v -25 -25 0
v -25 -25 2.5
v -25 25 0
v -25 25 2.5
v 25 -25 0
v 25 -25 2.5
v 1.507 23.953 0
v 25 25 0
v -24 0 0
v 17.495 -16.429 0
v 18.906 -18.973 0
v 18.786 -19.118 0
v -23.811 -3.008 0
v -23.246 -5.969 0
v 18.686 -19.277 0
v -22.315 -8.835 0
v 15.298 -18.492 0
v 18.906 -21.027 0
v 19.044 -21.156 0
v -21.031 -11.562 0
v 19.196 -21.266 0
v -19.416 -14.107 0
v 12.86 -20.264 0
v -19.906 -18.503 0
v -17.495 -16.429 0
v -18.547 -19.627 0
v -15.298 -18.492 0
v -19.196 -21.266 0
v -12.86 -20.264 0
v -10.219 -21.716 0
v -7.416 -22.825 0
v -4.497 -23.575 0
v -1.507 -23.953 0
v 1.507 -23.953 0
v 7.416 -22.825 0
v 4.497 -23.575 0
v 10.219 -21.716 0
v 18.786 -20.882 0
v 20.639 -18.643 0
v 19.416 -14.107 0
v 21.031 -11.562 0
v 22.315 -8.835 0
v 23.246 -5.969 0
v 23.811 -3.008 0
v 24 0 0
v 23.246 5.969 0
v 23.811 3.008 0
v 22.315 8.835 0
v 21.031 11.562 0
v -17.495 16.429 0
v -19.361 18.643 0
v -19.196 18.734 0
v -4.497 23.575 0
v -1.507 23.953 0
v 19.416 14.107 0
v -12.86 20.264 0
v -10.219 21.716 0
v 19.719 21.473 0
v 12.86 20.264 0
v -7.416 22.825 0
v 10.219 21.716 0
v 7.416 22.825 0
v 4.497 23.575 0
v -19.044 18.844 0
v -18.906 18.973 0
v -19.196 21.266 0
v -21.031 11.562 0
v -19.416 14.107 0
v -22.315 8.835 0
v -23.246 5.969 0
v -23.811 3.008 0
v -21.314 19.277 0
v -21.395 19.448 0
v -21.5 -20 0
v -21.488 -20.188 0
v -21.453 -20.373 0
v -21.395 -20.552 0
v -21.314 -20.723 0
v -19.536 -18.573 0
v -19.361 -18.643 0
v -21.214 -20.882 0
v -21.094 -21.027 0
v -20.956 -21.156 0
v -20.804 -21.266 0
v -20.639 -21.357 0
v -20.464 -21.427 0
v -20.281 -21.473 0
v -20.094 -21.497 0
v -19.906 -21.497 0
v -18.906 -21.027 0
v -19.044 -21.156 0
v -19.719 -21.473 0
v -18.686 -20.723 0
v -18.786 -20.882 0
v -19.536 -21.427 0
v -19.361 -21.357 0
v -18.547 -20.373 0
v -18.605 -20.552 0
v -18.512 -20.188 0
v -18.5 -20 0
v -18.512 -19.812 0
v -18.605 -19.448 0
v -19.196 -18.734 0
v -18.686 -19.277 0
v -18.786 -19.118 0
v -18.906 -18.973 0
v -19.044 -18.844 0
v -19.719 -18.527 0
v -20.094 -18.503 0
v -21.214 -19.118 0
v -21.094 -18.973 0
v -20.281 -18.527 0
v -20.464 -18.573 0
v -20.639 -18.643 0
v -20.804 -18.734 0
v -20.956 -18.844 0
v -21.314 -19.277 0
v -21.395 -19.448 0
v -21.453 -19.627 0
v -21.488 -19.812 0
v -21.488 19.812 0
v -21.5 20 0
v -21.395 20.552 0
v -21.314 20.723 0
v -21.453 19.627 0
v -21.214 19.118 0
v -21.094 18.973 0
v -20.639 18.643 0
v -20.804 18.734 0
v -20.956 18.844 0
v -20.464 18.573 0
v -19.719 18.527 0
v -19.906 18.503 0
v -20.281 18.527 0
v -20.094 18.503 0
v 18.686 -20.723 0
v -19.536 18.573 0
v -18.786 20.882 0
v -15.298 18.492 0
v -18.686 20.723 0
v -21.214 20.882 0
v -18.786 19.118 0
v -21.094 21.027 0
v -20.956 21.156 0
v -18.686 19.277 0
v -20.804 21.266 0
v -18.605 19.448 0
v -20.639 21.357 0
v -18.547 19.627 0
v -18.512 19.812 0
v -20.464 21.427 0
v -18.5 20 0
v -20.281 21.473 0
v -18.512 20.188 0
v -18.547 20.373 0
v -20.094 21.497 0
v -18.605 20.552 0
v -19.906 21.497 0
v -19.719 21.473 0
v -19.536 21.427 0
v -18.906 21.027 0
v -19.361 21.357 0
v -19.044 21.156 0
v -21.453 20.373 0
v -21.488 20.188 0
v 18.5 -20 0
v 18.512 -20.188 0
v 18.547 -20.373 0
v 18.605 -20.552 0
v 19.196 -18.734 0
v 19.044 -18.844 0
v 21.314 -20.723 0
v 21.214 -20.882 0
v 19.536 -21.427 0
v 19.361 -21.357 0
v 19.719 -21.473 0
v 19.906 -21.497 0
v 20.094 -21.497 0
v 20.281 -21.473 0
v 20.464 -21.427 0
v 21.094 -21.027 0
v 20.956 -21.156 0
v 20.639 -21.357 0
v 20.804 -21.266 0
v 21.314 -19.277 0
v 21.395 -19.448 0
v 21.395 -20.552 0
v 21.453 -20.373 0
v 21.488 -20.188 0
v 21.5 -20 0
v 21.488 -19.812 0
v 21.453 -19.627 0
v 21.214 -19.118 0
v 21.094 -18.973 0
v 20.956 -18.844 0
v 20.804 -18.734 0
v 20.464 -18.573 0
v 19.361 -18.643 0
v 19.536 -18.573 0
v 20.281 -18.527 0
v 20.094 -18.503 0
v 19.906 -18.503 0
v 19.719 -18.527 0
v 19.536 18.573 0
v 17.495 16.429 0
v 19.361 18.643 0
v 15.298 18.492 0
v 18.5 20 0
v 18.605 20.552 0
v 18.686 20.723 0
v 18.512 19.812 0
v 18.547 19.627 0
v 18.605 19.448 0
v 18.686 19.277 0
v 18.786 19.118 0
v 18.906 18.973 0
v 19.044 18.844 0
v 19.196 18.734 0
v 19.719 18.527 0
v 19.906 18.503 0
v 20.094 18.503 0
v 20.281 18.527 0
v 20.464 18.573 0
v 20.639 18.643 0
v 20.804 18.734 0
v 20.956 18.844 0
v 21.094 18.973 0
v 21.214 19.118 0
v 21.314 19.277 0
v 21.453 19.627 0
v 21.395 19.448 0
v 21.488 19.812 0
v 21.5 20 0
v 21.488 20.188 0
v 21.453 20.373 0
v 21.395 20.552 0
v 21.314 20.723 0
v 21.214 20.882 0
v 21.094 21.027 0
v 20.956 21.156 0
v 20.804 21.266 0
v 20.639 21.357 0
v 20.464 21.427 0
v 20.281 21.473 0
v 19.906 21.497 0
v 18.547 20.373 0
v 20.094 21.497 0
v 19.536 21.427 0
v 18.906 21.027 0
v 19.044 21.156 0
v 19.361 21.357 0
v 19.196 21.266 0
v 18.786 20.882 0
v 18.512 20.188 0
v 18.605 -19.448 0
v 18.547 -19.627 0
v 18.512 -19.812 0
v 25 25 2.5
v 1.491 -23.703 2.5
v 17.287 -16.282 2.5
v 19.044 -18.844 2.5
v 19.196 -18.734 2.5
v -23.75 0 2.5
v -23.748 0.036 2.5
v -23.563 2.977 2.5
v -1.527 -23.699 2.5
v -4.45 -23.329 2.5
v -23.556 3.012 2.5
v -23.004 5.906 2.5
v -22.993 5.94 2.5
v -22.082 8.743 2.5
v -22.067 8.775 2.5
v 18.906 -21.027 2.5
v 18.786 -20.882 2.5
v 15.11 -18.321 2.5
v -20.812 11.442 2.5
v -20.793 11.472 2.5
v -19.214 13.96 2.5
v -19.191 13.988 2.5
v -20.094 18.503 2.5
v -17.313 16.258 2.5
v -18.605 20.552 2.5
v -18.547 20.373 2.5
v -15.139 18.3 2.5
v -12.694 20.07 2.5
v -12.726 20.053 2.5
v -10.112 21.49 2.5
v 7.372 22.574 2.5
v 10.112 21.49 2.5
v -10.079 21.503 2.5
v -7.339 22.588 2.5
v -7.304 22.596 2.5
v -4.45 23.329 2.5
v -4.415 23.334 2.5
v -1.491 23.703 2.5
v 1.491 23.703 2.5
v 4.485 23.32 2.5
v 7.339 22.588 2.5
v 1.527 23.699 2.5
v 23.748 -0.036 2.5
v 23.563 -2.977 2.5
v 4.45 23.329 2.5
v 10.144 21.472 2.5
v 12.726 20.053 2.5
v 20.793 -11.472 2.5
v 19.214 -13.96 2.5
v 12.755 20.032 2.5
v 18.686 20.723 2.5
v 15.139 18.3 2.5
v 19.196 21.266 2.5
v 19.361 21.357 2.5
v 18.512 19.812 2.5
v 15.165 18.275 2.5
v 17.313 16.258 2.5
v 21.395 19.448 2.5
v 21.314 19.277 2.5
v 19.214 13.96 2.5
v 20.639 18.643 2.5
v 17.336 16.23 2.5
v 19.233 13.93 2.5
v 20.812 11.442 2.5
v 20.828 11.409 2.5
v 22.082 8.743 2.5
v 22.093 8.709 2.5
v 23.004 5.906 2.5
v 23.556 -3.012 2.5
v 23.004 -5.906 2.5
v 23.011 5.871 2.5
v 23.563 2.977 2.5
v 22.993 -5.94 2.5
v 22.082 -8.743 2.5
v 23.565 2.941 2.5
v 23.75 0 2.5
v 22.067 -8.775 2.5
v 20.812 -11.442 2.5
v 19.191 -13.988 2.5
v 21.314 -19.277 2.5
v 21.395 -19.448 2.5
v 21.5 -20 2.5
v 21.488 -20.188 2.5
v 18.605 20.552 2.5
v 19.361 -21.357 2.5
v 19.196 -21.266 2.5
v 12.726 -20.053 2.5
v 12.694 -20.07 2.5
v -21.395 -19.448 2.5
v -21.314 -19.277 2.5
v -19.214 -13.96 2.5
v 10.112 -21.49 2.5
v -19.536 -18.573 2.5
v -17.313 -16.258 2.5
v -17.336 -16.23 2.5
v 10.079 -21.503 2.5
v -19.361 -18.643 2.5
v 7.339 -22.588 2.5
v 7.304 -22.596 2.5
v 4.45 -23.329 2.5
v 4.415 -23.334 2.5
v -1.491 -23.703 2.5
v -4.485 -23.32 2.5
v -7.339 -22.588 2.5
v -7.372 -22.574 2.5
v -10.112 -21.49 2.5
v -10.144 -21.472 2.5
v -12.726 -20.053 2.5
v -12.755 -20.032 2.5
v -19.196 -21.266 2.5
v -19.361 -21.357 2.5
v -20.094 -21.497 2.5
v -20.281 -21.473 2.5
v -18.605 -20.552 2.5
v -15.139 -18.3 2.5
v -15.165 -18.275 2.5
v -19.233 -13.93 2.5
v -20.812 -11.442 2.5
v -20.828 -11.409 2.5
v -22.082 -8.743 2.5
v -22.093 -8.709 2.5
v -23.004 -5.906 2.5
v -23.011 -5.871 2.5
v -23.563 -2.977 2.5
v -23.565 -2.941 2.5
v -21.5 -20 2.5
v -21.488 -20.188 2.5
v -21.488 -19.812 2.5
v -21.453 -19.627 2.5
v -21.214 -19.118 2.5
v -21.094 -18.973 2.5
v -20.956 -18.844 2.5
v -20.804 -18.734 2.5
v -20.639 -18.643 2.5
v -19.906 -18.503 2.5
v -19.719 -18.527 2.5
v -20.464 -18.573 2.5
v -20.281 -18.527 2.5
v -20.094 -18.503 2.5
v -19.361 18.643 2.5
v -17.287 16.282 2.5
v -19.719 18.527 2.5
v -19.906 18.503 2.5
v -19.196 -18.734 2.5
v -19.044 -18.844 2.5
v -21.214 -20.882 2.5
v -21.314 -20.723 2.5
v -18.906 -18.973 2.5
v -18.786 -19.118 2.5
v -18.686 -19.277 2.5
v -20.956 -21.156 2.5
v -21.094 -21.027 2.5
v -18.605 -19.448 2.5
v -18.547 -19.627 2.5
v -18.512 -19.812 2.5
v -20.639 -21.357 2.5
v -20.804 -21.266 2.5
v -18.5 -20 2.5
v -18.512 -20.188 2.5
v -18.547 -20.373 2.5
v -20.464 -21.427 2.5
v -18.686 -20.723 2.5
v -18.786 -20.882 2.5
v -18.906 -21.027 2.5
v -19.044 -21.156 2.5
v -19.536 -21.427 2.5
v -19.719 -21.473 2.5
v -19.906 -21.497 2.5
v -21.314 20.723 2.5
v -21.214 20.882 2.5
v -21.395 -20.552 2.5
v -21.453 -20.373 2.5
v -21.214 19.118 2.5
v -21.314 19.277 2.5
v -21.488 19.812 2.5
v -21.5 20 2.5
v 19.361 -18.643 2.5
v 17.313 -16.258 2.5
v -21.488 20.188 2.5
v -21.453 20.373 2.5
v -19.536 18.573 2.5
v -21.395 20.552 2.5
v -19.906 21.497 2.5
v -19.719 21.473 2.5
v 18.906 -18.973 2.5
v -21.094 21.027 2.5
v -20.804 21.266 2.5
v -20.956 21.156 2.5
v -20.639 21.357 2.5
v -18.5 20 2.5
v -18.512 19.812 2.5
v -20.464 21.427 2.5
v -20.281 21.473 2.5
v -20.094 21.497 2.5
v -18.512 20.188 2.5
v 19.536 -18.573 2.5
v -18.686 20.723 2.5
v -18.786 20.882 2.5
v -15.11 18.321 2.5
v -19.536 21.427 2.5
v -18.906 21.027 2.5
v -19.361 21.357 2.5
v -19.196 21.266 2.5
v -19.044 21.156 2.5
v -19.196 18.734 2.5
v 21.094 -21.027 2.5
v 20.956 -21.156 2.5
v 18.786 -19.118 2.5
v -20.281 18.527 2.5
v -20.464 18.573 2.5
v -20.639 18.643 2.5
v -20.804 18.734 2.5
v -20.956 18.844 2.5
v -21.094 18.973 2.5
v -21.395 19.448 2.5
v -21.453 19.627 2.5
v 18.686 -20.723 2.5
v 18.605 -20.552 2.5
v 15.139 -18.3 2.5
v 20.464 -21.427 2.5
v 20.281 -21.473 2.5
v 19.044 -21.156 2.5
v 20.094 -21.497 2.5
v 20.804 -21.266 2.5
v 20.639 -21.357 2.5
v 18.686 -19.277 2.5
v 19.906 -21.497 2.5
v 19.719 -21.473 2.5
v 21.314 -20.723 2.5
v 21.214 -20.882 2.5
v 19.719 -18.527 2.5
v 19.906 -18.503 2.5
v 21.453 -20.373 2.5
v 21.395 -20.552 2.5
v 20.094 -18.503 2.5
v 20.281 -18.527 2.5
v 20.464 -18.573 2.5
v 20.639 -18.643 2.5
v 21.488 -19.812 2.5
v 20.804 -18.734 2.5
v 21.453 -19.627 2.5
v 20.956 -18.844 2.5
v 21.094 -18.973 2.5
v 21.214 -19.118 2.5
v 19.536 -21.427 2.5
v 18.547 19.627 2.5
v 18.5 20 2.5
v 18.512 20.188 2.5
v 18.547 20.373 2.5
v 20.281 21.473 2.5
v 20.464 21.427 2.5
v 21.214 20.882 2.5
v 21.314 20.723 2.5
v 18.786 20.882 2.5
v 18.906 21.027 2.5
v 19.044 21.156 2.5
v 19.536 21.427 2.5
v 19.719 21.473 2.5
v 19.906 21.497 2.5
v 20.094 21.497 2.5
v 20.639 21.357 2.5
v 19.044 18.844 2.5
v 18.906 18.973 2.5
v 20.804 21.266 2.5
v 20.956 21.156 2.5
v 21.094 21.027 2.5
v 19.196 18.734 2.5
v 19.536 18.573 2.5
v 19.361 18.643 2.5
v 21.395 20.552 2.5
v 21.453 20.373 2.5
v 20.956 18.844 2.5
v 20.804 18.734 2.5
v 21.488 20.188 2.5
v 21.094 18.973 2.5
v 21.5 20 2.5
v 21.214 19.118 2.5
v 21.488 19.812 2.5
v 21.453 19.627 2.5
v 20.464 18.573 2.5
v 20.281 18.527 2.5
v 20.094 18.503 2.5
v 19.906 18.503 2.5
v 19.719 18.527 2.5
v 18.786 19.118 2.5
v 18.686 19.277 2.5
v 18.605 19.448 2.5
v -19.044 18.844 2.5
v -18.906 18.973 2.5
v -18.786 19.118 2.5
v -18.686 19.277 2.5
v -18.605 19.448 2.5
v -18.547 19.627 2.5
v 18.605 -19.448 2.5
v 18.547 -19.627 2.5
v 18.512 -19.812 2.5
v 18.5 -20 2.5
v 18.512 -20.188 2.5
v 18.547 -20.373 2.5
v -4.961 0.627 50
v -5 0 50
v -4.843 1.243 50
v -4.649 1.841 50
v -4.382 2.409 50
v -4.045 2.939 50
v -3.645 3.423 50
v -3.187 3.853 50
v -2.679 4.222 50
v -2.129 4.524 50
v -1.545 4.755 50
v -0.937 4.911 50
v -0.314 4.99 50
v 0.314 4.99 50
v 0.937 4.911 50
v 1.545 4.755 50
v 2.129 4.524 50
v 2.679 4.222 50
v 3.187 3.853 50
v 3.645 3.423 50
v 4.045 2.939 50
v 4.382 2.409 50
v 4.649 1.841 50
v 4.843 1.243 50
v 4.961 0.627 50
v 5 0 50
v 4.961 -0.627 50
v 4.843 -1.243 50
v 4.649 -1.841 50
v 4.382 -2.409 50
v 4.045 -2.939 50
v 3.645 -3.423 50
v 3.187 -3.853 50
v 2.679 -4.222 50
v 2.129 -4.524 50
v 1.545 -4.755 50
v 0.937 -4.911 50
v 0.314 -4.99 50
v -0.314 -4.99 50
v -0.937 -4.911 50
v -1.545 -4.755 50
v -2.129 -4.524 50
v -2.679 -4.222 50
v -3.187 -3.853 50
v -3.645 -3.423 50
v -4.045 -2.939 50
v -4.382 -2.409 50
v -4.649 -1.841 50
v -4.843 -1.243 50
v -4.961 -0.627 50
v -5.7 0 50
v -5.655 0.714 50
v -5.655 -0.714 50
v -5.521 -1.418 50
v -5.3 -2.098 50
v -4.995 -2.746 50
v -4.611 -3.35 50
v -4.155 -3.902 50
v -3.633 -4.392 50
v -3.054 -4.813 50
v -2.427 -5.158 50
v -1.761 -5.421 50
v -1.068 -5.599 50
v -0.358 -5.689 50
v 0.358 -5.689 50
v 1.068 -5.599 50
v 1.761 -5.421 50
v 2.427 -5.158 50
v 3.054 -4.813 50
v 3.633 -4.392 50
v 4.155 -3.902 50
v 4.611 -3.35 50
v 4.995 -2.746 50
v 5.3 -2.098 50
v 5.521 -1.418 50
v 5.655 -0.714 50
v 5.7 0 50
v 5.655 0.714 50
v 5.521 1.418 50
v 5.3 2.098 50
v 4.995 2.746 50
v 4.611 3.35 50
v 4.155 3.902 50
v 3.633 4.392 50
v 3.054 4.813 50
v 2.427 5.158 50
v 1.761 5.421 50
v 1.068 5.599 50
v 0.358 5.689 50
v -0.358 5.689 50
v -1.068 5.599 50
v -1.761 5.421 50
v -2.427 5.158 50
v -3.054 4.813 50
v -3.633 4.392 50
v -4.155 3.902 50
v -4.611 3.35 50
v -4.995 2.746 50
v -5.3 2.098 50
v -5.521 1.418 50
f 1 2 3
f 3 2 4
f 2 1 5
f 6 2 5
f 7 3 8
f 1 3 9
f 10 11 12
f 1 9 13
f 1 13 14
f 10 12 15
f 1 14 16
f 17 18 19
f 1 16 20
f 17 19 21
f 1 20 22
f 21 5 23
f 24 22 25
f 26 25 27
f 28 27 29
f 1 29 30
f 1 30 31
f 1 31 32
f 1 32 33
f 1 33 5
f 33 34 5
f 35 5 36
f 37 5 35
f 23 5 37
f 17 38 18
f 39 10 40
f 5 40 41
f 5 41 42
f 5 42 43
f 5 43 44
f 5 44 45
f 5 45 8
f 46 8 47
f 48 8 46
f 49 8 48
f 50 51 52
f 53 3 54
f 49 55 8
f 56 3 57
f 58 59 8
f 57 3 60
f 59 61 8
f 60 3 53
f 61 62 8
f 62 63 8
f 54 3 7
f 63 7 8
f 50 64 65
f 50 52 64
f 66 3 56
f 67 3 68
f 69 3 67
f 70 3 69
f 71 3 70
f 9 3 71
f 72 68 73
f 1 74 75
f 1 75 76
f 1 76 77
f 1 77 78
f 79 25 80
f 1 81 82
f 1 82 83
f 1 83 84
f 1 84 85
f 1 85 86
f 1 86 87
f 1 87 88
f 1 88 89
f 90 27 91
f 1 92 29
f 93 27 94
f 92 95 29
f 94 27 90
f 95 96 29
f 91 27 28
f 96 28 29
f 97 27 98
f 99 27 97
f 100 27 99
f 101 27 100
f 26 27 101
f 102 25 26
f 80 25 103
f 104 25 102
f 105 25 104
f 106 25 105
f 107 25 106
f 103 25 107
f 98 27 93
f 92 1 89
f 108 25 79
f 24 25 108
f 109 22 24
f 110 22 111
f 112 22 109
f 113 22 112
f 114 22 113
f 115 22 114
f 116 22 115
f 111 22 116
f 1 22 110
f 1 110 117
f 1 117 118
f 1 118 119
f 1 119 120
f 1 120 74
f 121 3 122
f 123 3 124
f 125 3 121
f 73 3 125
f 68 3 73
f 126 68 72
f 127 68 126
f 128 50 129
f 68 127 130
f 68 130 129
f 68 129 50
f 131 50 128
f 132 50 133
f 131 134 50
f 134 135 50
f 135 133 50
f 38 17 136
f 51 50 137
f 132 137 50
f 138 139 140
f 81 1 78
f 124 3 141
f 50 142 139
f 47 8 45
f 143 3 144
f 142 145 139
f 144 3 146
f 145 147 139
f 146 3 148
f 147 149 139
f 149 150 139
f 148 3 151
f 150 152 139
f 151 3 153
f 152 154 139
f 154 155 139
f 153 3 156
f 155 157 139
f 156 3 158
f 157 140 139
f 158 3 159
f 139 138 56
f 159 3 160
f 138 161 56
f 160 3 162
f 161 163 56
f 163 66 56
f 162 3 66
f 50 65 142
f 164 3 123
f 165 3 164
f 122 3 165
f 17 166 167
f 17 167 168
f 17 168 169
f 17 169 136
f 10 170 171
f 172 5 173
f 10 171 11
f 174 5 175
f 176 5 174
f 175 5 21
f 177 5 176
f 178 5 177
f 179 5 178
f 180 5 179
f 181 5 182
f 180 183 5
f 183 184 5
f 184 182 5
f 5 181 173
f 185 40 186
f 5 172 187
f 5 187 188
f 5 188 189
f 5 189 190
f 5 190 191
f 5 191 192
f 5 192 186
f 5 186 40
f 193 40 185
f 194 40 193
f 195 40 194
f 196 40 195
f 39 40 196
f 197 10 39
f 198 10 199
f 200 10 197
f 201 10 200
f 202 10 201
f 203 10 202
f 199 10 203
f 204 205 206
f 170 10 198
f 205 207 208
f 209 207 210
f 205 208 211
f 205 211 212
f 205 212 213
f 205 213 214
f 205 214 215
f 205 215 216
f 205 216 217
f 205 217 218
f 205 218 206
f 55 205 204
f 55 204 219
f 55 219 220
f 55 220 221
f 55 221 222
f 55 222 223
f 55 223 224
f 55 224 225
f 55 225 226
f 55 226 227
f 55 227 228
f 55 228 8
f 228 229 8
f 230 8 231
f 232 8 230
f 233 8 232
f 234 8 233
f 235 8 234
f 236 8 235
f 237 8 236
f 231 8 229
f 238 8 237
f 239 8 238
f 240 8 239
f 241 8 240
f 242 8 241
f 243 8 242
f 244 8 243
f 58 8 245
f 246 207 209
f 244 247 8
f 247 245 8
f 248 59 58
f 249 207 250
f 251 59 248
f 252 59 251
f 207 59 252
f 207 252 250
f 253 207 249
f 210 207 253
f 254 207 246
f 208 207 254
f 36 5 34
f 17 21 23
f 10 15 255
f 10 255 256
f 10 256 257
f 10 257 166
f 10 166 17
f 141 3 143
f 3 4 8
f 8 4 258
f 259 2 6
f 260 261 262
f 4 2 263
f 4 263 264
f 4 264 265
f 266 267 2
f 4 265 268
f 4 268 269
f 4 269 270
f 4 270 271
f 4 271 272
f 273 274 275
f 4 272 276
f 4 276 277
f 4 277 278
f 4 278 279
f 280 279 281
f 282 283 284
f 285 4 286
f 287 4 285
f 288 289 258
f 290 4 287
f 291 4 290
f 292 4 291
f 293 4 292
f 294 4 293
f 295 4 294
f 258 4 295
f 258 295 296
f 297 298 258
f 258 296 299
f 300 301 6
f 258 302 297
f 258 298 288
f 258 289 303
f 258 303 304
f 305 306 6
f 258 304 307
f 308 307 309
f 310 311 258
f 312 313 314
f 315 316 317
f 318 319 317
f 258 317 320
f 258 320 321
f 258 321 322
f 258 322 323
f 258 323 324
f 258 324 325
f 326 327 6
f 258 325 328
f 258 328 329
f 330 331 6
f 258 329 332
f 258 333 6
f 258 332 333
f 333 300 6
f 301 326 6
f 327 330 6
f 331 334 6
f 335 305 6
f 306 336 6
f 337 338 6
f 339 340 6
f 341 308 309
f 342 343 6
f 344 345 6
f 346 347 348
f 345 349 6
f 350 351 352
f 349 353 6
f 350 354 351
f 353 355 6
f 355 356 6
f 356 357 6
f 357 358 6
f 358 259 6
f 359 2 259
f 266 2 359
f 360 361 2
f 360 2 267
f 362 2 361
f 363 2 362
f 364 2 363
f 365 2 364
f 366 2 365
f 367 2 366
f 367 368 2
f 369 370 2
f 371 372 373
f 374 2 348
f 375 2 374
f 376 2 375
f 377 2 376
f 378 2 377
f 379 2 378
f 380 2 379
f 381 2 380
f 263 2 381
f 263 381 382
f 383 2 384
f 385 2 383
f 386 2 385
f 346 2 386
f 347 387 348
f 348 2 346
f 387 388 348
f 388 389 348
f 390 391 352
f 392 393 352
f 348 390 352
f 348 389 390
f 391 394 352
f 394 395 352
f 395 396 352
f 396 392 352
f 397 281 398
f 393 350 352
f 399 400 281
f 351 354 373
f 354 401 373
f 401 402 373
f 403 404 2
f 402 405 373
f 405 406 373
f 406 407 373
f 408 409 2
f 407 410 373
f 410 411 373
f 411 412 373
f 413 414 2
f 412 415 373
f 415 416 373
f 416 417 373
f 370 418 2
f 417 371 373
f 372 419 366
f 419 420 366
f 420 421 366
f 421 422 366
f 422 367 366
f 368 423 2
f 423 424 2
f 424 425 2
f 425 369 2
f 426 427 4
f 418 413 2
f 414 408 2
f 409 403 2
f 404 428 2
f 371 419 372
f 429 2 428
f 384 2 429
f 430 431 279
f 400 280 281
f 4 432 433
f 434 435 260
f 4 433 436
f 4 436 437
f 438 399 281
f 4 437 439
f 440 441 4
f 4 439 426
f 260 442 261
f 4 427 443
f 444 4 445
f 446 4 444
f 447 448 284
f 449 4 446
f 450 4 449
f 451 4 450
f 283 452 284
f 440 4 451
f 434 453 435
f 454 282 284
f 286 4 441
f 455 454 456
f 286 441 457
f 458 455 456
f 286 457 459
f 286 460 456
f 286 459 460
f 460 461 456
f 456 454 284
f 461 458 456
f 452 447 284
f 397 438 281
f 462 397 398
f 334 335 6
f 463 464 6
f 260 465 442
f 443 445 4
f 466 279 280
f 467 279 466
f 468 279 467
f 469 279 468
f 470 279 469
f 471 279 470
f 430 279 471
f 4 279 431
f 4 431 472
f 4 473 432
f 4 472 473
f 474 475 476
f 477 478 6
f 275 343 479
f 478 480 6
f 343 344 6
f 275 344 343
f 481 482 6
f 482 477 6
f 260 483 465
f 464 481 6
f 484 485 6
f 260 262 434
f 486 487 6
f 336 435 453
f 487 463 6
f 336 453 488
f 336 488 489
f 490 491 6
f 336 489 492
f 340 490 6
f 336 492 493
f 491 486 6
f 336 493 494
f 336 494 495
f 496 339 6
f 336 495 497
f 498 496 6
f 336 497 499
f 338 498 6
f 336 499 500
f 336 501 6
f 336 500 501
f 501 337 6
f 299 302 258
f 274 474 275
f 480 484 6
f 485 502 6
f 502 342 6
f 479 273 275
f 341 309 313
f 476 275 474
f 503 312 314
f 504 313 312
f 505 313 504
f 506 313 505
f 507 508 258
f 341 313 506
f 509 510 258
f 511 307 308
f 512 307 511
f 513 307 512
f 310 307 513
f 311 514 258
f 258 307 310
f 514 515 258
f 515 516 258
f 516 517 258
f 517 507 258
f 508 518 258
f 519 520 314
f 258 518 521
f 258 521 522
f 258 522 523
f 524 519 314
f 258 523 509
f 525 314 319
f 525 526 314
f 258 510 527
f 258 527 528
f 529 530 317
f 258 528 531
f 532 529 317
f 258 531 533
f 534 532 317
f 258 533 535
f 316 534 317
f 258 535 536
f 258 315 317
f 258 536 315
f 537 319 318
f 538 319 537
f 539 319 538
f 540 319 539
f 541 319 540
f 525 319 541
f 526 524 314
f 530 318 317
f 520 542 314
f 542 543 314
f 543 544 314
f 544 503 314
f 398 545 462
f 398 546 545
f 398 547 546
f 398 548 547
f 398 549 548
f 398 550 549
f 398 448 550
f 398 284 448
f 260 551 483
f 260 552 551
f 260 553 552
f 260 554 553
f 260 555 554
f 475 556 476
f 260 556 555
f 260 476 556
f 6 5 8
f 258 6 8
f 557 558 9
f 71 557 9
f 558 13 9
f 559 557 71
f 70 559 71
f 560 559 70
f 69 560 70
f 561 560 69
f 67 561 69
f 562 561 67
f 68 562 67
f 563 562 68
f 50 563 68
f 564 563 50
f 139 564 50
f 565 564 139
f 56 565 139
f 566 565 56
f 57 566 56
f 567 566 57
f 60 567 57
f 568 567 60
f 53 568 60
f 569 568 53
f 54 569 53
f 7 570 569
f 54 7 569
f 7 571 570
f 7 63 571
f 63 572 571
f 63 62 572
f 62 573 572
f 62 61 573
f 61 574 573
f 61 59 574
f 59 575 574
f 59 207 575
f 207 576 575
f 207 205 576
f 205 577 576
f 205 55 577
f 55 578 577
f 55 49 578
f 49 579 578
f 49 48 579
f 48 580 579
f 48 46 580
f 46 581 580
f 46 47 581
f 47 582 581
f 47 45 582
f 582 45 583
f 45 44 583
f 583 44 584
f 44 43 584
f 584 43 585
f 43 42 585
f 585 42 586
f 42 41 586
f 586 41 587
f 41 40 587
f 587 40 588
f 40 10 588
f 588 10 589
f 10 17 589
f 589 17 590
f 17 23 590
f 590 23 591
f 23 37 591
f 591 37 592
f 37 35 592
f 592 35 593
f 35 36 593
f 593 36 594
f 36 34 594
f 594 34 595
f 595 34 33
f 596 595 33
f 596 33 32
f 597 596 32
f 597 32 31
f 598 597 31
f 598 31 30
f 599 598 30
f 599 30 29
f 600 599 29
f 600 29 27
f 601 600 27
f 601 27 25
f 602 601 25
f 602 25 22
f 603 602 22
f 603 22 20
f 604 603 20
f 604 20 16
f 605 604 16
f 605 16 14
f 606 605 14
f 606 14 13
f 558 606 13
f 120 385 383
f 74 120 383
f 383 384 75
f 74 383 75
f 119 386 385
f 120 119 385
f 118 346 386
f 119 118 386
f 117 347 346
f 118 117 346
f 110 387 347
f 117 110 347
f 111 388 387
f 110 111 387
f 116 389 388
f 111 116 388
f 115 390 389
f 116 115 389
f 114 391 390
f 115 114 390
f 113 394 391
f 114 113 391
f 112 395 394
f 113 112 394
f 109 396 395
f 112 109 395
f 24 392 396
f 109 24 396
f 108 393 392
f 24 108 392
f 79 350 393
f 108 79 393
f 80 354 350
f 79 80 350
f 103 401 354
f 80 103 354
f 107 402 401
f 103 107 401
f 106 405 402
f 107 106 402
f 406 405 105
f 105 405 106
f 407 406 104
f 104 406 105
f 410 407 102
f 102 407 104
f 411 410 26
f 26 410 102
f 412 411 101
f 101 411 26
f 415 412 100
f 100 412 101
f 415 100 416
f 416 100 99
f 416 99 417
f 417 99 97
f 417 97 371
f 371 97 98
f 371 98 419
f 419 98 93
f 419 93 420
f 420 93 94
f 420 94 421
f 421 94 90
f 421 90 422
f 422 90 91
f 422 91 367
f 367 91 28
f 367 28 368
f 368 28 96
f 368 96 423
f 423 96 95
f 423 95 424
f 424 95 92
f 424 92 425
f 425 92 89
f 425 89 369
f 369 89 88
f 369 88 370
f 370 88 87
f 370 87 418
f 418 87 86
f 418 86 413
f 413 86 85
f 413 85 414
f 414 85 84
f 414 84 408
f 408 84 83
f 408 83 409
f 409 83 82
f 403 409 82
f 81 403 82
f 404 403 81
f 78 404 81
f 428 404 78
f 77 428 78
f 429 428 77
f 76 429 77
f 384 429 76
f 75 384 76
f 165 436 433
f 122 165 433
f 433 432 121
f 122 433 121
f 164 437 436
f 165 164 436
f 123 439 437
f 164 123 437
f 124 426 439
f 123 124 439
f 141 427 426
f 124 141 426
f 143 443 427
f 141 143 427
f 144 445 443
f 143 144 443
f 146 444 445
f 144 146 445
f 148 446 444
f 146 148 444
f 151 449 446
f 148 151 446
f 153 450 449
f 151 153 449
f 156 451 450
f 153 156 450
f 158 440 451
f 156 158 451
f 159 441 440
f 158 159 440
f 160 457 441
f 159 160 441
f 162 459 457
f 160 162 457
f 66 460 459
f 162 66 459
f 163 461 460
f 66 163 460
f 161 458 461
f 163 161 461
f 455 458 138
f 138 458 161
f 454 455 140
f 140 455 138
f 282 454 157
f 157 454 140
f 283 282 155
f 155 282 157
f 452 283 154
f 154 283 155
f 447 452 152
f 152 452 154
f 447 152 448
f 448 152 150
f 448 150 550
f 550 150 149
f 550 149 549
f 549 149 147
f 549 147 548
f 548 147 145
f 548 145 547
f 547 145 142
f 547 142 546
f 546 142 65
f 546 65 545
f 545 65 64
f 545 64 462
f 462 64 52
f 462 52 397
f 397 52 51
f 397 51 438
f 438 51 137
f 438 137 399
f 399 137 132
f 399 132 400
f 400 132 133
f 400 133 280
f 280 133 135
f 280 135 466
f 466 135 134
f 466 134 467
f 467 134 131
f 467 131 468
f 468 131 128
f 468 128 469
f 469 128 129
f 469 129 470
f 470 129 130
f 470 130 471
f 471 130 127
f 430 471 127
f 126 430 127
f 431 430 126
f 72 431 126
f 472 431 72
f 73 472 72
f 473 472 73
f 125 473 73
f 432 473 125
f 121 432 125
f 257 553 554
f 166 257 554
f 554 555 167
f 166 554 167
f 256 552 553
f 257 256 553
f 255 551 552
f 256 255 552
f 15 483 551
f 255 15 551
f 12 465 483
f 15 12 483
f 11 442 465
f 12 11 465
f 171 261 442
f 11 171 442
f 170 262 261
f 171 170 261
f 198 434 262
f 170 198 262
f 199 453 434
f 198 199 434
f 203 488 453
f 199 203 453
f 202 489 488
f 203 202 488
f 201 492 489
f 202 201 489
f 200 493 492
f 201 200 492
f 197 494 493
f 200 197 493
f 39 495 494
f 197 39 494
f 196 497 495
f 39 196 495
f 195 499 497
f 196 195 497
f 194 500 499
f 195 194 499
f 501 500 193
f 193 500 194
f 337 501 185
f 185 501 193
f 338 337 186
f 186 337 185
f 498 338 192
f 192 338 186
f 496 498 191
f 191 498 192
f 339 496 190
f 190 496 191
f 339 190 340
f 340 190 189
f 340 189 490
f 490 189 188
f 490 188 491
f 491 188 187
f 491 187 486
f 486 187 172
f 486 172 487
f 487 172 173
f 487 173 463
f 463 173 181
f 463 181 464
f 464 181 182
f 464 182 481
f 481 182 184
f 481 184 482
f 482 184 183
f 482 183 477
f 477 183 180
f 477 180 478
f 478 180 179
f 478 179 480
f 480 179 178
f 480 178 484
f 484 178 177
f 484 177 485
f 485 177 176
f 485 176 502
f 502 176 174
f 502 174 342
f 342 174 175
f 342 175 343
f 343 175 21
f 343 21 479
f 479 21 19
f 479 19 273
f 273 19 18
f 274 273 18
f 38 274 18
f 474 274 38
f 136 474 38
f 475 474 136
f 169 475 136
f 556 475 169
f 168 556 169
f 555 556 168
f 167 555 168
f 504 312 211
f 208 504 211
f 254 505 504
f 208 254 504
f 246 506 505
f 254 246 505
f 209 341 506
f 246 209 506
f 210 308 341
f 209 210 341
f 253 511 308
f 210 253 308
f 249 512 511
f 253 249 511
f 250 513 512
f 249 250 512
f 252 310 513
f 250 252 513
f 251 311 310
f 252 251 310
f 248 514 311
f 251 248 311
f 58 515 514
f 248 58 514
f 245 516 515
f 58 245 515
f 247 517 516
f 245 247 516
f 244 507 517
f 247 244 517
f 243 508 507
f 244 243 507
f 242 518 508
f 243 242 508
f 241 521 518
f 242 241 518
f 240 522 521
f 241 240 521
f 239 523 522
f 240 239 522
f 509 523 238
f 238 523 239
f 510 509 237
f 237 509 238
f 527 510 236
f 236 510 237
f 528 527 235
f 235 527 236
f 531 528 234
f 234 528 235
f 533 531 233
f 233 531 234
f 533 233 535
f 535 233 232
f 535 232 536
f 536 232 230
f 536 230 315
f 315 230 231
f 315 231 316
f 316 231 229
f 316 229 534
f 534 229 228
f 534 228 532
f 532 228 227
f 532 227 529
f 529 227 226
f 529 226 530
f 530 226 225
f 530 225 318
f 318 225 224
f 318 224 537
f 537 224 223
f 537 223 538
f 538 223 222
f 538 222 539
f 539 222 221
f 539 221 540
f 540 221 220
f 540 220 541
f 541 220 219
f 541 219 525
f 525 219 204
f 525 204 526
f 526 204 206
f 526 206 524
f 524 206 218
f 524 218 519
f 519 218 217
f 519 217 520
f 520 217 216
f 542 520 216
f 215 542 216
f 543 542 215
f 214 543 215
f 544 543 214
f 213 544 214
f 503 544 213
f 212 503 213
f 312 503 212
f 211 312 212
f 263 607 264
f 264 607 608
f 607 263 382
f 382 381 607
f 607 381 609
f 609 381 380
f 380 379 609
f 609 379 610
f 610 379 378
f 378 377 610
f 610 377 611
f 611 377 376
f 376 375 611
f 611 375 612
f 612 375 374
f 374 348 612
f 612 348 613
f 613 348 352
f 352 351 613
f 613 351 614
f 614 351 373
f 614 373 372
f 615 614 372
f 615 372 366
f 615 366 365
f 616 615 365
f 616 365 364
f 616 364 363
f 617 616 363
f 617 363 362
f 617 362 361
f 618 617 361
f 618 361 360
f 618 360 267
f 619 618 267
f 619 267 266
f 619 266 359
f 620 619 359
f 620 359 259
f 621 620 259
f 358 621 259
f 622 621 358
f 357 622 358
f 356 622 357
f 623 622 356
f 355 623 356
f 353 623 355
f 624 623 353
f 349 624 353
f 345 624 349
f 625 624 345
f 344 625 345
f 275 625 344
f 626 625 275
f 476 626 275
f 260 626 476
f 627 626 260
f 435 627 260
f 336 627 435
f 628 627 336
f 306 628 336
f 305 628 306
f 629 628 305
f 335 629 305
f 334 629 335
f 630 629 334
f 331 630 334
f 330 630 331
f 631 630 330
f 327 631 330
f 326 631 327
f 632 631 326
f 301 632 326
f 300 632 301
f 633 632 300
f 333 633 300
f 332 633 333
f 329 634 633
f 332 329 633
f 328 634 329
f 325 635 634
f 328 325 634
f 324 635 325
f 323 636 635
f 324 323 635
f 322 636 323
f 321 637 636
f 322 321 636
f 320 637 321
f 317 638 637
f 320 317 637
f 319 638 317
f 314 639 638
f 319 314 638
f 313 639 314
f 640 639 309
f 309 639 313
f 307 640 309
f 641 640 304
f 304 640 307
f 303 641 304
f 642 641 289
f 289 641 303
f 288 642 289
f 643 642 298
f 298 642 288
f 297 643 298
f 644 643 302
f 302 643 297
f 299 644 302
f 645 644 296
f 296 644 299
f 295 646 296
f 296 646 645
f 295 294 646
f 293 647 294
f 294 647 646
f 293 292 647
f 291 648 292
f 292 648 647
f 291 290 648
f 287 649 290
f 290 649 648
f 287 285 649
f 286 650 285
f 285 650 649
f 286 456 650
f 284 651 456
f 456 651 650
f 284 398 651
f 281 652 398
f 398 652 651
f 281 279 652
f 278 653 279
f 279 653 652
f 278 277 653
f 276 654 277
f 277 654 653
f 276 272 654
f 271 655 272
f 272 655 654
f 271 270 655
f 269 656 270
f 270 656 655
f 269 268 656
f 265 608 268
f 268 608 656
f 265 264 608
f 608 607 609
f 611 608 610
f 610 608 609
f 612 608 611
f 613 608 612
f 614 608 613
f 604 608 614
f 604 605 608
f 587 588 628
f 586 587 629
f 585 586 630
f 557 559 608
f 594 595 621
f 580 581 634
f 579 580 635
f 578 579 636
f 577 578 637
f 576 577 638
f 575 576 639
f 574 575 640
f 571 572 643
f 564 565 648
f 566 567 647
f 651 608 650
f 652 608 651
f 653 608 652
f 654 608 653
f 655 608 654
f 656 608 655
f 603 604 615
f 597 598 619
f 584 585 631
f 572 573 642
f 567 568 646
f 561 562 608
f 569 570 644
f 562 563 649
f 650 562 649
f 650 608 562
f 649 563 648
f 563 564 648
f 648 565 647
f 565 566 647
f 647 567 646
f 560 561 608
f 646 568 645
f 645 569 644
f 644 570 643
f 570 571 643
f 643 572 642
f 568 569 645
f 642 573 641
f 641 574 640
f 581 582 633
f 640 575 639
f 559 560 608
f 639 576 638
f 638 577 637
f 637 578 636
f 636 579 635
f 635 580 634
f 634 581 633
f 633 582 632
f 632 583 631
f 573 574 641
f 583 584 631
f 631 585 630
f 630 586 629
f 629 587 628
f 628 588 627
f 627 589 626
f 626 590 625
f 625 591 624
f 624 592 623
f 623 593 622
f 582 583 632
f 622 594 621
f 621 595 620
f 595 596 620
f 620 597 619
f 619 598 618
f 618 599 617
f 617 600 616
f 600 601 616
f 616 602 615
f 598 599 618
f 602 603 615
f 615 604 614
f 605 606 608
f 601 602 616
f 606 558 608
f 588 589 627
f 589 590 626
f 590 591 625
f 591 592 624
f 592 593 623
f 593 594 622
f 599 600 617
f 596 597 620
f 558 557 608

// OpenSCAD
rb = 48/2;
rt = 5;
h = 50;
d = 0.7;
dp = 2.5;
s = 50;
sl = 40;
rl = 1.5;

$fn = 50;

difference(){
	union(){
		cylinder(h,rb+d,rt+d);
		translate([-s/2,-s/2,0]) cube([s,s,dp]);
	}
	cylinder(h,rb,rt);

	translate([-sl/2,-sl/2,0]) cylinder(r=rl,h=dp);
	translate([-sl/2,sl/2,0]) cylinder(r=rl,h=dp);
	translate([sl/2,-sl/2,0]) cylinder(r=rl,h=dp);
	translate([sl/2,sl/2,0]) cylinder(r=rl,h=dp);

}
